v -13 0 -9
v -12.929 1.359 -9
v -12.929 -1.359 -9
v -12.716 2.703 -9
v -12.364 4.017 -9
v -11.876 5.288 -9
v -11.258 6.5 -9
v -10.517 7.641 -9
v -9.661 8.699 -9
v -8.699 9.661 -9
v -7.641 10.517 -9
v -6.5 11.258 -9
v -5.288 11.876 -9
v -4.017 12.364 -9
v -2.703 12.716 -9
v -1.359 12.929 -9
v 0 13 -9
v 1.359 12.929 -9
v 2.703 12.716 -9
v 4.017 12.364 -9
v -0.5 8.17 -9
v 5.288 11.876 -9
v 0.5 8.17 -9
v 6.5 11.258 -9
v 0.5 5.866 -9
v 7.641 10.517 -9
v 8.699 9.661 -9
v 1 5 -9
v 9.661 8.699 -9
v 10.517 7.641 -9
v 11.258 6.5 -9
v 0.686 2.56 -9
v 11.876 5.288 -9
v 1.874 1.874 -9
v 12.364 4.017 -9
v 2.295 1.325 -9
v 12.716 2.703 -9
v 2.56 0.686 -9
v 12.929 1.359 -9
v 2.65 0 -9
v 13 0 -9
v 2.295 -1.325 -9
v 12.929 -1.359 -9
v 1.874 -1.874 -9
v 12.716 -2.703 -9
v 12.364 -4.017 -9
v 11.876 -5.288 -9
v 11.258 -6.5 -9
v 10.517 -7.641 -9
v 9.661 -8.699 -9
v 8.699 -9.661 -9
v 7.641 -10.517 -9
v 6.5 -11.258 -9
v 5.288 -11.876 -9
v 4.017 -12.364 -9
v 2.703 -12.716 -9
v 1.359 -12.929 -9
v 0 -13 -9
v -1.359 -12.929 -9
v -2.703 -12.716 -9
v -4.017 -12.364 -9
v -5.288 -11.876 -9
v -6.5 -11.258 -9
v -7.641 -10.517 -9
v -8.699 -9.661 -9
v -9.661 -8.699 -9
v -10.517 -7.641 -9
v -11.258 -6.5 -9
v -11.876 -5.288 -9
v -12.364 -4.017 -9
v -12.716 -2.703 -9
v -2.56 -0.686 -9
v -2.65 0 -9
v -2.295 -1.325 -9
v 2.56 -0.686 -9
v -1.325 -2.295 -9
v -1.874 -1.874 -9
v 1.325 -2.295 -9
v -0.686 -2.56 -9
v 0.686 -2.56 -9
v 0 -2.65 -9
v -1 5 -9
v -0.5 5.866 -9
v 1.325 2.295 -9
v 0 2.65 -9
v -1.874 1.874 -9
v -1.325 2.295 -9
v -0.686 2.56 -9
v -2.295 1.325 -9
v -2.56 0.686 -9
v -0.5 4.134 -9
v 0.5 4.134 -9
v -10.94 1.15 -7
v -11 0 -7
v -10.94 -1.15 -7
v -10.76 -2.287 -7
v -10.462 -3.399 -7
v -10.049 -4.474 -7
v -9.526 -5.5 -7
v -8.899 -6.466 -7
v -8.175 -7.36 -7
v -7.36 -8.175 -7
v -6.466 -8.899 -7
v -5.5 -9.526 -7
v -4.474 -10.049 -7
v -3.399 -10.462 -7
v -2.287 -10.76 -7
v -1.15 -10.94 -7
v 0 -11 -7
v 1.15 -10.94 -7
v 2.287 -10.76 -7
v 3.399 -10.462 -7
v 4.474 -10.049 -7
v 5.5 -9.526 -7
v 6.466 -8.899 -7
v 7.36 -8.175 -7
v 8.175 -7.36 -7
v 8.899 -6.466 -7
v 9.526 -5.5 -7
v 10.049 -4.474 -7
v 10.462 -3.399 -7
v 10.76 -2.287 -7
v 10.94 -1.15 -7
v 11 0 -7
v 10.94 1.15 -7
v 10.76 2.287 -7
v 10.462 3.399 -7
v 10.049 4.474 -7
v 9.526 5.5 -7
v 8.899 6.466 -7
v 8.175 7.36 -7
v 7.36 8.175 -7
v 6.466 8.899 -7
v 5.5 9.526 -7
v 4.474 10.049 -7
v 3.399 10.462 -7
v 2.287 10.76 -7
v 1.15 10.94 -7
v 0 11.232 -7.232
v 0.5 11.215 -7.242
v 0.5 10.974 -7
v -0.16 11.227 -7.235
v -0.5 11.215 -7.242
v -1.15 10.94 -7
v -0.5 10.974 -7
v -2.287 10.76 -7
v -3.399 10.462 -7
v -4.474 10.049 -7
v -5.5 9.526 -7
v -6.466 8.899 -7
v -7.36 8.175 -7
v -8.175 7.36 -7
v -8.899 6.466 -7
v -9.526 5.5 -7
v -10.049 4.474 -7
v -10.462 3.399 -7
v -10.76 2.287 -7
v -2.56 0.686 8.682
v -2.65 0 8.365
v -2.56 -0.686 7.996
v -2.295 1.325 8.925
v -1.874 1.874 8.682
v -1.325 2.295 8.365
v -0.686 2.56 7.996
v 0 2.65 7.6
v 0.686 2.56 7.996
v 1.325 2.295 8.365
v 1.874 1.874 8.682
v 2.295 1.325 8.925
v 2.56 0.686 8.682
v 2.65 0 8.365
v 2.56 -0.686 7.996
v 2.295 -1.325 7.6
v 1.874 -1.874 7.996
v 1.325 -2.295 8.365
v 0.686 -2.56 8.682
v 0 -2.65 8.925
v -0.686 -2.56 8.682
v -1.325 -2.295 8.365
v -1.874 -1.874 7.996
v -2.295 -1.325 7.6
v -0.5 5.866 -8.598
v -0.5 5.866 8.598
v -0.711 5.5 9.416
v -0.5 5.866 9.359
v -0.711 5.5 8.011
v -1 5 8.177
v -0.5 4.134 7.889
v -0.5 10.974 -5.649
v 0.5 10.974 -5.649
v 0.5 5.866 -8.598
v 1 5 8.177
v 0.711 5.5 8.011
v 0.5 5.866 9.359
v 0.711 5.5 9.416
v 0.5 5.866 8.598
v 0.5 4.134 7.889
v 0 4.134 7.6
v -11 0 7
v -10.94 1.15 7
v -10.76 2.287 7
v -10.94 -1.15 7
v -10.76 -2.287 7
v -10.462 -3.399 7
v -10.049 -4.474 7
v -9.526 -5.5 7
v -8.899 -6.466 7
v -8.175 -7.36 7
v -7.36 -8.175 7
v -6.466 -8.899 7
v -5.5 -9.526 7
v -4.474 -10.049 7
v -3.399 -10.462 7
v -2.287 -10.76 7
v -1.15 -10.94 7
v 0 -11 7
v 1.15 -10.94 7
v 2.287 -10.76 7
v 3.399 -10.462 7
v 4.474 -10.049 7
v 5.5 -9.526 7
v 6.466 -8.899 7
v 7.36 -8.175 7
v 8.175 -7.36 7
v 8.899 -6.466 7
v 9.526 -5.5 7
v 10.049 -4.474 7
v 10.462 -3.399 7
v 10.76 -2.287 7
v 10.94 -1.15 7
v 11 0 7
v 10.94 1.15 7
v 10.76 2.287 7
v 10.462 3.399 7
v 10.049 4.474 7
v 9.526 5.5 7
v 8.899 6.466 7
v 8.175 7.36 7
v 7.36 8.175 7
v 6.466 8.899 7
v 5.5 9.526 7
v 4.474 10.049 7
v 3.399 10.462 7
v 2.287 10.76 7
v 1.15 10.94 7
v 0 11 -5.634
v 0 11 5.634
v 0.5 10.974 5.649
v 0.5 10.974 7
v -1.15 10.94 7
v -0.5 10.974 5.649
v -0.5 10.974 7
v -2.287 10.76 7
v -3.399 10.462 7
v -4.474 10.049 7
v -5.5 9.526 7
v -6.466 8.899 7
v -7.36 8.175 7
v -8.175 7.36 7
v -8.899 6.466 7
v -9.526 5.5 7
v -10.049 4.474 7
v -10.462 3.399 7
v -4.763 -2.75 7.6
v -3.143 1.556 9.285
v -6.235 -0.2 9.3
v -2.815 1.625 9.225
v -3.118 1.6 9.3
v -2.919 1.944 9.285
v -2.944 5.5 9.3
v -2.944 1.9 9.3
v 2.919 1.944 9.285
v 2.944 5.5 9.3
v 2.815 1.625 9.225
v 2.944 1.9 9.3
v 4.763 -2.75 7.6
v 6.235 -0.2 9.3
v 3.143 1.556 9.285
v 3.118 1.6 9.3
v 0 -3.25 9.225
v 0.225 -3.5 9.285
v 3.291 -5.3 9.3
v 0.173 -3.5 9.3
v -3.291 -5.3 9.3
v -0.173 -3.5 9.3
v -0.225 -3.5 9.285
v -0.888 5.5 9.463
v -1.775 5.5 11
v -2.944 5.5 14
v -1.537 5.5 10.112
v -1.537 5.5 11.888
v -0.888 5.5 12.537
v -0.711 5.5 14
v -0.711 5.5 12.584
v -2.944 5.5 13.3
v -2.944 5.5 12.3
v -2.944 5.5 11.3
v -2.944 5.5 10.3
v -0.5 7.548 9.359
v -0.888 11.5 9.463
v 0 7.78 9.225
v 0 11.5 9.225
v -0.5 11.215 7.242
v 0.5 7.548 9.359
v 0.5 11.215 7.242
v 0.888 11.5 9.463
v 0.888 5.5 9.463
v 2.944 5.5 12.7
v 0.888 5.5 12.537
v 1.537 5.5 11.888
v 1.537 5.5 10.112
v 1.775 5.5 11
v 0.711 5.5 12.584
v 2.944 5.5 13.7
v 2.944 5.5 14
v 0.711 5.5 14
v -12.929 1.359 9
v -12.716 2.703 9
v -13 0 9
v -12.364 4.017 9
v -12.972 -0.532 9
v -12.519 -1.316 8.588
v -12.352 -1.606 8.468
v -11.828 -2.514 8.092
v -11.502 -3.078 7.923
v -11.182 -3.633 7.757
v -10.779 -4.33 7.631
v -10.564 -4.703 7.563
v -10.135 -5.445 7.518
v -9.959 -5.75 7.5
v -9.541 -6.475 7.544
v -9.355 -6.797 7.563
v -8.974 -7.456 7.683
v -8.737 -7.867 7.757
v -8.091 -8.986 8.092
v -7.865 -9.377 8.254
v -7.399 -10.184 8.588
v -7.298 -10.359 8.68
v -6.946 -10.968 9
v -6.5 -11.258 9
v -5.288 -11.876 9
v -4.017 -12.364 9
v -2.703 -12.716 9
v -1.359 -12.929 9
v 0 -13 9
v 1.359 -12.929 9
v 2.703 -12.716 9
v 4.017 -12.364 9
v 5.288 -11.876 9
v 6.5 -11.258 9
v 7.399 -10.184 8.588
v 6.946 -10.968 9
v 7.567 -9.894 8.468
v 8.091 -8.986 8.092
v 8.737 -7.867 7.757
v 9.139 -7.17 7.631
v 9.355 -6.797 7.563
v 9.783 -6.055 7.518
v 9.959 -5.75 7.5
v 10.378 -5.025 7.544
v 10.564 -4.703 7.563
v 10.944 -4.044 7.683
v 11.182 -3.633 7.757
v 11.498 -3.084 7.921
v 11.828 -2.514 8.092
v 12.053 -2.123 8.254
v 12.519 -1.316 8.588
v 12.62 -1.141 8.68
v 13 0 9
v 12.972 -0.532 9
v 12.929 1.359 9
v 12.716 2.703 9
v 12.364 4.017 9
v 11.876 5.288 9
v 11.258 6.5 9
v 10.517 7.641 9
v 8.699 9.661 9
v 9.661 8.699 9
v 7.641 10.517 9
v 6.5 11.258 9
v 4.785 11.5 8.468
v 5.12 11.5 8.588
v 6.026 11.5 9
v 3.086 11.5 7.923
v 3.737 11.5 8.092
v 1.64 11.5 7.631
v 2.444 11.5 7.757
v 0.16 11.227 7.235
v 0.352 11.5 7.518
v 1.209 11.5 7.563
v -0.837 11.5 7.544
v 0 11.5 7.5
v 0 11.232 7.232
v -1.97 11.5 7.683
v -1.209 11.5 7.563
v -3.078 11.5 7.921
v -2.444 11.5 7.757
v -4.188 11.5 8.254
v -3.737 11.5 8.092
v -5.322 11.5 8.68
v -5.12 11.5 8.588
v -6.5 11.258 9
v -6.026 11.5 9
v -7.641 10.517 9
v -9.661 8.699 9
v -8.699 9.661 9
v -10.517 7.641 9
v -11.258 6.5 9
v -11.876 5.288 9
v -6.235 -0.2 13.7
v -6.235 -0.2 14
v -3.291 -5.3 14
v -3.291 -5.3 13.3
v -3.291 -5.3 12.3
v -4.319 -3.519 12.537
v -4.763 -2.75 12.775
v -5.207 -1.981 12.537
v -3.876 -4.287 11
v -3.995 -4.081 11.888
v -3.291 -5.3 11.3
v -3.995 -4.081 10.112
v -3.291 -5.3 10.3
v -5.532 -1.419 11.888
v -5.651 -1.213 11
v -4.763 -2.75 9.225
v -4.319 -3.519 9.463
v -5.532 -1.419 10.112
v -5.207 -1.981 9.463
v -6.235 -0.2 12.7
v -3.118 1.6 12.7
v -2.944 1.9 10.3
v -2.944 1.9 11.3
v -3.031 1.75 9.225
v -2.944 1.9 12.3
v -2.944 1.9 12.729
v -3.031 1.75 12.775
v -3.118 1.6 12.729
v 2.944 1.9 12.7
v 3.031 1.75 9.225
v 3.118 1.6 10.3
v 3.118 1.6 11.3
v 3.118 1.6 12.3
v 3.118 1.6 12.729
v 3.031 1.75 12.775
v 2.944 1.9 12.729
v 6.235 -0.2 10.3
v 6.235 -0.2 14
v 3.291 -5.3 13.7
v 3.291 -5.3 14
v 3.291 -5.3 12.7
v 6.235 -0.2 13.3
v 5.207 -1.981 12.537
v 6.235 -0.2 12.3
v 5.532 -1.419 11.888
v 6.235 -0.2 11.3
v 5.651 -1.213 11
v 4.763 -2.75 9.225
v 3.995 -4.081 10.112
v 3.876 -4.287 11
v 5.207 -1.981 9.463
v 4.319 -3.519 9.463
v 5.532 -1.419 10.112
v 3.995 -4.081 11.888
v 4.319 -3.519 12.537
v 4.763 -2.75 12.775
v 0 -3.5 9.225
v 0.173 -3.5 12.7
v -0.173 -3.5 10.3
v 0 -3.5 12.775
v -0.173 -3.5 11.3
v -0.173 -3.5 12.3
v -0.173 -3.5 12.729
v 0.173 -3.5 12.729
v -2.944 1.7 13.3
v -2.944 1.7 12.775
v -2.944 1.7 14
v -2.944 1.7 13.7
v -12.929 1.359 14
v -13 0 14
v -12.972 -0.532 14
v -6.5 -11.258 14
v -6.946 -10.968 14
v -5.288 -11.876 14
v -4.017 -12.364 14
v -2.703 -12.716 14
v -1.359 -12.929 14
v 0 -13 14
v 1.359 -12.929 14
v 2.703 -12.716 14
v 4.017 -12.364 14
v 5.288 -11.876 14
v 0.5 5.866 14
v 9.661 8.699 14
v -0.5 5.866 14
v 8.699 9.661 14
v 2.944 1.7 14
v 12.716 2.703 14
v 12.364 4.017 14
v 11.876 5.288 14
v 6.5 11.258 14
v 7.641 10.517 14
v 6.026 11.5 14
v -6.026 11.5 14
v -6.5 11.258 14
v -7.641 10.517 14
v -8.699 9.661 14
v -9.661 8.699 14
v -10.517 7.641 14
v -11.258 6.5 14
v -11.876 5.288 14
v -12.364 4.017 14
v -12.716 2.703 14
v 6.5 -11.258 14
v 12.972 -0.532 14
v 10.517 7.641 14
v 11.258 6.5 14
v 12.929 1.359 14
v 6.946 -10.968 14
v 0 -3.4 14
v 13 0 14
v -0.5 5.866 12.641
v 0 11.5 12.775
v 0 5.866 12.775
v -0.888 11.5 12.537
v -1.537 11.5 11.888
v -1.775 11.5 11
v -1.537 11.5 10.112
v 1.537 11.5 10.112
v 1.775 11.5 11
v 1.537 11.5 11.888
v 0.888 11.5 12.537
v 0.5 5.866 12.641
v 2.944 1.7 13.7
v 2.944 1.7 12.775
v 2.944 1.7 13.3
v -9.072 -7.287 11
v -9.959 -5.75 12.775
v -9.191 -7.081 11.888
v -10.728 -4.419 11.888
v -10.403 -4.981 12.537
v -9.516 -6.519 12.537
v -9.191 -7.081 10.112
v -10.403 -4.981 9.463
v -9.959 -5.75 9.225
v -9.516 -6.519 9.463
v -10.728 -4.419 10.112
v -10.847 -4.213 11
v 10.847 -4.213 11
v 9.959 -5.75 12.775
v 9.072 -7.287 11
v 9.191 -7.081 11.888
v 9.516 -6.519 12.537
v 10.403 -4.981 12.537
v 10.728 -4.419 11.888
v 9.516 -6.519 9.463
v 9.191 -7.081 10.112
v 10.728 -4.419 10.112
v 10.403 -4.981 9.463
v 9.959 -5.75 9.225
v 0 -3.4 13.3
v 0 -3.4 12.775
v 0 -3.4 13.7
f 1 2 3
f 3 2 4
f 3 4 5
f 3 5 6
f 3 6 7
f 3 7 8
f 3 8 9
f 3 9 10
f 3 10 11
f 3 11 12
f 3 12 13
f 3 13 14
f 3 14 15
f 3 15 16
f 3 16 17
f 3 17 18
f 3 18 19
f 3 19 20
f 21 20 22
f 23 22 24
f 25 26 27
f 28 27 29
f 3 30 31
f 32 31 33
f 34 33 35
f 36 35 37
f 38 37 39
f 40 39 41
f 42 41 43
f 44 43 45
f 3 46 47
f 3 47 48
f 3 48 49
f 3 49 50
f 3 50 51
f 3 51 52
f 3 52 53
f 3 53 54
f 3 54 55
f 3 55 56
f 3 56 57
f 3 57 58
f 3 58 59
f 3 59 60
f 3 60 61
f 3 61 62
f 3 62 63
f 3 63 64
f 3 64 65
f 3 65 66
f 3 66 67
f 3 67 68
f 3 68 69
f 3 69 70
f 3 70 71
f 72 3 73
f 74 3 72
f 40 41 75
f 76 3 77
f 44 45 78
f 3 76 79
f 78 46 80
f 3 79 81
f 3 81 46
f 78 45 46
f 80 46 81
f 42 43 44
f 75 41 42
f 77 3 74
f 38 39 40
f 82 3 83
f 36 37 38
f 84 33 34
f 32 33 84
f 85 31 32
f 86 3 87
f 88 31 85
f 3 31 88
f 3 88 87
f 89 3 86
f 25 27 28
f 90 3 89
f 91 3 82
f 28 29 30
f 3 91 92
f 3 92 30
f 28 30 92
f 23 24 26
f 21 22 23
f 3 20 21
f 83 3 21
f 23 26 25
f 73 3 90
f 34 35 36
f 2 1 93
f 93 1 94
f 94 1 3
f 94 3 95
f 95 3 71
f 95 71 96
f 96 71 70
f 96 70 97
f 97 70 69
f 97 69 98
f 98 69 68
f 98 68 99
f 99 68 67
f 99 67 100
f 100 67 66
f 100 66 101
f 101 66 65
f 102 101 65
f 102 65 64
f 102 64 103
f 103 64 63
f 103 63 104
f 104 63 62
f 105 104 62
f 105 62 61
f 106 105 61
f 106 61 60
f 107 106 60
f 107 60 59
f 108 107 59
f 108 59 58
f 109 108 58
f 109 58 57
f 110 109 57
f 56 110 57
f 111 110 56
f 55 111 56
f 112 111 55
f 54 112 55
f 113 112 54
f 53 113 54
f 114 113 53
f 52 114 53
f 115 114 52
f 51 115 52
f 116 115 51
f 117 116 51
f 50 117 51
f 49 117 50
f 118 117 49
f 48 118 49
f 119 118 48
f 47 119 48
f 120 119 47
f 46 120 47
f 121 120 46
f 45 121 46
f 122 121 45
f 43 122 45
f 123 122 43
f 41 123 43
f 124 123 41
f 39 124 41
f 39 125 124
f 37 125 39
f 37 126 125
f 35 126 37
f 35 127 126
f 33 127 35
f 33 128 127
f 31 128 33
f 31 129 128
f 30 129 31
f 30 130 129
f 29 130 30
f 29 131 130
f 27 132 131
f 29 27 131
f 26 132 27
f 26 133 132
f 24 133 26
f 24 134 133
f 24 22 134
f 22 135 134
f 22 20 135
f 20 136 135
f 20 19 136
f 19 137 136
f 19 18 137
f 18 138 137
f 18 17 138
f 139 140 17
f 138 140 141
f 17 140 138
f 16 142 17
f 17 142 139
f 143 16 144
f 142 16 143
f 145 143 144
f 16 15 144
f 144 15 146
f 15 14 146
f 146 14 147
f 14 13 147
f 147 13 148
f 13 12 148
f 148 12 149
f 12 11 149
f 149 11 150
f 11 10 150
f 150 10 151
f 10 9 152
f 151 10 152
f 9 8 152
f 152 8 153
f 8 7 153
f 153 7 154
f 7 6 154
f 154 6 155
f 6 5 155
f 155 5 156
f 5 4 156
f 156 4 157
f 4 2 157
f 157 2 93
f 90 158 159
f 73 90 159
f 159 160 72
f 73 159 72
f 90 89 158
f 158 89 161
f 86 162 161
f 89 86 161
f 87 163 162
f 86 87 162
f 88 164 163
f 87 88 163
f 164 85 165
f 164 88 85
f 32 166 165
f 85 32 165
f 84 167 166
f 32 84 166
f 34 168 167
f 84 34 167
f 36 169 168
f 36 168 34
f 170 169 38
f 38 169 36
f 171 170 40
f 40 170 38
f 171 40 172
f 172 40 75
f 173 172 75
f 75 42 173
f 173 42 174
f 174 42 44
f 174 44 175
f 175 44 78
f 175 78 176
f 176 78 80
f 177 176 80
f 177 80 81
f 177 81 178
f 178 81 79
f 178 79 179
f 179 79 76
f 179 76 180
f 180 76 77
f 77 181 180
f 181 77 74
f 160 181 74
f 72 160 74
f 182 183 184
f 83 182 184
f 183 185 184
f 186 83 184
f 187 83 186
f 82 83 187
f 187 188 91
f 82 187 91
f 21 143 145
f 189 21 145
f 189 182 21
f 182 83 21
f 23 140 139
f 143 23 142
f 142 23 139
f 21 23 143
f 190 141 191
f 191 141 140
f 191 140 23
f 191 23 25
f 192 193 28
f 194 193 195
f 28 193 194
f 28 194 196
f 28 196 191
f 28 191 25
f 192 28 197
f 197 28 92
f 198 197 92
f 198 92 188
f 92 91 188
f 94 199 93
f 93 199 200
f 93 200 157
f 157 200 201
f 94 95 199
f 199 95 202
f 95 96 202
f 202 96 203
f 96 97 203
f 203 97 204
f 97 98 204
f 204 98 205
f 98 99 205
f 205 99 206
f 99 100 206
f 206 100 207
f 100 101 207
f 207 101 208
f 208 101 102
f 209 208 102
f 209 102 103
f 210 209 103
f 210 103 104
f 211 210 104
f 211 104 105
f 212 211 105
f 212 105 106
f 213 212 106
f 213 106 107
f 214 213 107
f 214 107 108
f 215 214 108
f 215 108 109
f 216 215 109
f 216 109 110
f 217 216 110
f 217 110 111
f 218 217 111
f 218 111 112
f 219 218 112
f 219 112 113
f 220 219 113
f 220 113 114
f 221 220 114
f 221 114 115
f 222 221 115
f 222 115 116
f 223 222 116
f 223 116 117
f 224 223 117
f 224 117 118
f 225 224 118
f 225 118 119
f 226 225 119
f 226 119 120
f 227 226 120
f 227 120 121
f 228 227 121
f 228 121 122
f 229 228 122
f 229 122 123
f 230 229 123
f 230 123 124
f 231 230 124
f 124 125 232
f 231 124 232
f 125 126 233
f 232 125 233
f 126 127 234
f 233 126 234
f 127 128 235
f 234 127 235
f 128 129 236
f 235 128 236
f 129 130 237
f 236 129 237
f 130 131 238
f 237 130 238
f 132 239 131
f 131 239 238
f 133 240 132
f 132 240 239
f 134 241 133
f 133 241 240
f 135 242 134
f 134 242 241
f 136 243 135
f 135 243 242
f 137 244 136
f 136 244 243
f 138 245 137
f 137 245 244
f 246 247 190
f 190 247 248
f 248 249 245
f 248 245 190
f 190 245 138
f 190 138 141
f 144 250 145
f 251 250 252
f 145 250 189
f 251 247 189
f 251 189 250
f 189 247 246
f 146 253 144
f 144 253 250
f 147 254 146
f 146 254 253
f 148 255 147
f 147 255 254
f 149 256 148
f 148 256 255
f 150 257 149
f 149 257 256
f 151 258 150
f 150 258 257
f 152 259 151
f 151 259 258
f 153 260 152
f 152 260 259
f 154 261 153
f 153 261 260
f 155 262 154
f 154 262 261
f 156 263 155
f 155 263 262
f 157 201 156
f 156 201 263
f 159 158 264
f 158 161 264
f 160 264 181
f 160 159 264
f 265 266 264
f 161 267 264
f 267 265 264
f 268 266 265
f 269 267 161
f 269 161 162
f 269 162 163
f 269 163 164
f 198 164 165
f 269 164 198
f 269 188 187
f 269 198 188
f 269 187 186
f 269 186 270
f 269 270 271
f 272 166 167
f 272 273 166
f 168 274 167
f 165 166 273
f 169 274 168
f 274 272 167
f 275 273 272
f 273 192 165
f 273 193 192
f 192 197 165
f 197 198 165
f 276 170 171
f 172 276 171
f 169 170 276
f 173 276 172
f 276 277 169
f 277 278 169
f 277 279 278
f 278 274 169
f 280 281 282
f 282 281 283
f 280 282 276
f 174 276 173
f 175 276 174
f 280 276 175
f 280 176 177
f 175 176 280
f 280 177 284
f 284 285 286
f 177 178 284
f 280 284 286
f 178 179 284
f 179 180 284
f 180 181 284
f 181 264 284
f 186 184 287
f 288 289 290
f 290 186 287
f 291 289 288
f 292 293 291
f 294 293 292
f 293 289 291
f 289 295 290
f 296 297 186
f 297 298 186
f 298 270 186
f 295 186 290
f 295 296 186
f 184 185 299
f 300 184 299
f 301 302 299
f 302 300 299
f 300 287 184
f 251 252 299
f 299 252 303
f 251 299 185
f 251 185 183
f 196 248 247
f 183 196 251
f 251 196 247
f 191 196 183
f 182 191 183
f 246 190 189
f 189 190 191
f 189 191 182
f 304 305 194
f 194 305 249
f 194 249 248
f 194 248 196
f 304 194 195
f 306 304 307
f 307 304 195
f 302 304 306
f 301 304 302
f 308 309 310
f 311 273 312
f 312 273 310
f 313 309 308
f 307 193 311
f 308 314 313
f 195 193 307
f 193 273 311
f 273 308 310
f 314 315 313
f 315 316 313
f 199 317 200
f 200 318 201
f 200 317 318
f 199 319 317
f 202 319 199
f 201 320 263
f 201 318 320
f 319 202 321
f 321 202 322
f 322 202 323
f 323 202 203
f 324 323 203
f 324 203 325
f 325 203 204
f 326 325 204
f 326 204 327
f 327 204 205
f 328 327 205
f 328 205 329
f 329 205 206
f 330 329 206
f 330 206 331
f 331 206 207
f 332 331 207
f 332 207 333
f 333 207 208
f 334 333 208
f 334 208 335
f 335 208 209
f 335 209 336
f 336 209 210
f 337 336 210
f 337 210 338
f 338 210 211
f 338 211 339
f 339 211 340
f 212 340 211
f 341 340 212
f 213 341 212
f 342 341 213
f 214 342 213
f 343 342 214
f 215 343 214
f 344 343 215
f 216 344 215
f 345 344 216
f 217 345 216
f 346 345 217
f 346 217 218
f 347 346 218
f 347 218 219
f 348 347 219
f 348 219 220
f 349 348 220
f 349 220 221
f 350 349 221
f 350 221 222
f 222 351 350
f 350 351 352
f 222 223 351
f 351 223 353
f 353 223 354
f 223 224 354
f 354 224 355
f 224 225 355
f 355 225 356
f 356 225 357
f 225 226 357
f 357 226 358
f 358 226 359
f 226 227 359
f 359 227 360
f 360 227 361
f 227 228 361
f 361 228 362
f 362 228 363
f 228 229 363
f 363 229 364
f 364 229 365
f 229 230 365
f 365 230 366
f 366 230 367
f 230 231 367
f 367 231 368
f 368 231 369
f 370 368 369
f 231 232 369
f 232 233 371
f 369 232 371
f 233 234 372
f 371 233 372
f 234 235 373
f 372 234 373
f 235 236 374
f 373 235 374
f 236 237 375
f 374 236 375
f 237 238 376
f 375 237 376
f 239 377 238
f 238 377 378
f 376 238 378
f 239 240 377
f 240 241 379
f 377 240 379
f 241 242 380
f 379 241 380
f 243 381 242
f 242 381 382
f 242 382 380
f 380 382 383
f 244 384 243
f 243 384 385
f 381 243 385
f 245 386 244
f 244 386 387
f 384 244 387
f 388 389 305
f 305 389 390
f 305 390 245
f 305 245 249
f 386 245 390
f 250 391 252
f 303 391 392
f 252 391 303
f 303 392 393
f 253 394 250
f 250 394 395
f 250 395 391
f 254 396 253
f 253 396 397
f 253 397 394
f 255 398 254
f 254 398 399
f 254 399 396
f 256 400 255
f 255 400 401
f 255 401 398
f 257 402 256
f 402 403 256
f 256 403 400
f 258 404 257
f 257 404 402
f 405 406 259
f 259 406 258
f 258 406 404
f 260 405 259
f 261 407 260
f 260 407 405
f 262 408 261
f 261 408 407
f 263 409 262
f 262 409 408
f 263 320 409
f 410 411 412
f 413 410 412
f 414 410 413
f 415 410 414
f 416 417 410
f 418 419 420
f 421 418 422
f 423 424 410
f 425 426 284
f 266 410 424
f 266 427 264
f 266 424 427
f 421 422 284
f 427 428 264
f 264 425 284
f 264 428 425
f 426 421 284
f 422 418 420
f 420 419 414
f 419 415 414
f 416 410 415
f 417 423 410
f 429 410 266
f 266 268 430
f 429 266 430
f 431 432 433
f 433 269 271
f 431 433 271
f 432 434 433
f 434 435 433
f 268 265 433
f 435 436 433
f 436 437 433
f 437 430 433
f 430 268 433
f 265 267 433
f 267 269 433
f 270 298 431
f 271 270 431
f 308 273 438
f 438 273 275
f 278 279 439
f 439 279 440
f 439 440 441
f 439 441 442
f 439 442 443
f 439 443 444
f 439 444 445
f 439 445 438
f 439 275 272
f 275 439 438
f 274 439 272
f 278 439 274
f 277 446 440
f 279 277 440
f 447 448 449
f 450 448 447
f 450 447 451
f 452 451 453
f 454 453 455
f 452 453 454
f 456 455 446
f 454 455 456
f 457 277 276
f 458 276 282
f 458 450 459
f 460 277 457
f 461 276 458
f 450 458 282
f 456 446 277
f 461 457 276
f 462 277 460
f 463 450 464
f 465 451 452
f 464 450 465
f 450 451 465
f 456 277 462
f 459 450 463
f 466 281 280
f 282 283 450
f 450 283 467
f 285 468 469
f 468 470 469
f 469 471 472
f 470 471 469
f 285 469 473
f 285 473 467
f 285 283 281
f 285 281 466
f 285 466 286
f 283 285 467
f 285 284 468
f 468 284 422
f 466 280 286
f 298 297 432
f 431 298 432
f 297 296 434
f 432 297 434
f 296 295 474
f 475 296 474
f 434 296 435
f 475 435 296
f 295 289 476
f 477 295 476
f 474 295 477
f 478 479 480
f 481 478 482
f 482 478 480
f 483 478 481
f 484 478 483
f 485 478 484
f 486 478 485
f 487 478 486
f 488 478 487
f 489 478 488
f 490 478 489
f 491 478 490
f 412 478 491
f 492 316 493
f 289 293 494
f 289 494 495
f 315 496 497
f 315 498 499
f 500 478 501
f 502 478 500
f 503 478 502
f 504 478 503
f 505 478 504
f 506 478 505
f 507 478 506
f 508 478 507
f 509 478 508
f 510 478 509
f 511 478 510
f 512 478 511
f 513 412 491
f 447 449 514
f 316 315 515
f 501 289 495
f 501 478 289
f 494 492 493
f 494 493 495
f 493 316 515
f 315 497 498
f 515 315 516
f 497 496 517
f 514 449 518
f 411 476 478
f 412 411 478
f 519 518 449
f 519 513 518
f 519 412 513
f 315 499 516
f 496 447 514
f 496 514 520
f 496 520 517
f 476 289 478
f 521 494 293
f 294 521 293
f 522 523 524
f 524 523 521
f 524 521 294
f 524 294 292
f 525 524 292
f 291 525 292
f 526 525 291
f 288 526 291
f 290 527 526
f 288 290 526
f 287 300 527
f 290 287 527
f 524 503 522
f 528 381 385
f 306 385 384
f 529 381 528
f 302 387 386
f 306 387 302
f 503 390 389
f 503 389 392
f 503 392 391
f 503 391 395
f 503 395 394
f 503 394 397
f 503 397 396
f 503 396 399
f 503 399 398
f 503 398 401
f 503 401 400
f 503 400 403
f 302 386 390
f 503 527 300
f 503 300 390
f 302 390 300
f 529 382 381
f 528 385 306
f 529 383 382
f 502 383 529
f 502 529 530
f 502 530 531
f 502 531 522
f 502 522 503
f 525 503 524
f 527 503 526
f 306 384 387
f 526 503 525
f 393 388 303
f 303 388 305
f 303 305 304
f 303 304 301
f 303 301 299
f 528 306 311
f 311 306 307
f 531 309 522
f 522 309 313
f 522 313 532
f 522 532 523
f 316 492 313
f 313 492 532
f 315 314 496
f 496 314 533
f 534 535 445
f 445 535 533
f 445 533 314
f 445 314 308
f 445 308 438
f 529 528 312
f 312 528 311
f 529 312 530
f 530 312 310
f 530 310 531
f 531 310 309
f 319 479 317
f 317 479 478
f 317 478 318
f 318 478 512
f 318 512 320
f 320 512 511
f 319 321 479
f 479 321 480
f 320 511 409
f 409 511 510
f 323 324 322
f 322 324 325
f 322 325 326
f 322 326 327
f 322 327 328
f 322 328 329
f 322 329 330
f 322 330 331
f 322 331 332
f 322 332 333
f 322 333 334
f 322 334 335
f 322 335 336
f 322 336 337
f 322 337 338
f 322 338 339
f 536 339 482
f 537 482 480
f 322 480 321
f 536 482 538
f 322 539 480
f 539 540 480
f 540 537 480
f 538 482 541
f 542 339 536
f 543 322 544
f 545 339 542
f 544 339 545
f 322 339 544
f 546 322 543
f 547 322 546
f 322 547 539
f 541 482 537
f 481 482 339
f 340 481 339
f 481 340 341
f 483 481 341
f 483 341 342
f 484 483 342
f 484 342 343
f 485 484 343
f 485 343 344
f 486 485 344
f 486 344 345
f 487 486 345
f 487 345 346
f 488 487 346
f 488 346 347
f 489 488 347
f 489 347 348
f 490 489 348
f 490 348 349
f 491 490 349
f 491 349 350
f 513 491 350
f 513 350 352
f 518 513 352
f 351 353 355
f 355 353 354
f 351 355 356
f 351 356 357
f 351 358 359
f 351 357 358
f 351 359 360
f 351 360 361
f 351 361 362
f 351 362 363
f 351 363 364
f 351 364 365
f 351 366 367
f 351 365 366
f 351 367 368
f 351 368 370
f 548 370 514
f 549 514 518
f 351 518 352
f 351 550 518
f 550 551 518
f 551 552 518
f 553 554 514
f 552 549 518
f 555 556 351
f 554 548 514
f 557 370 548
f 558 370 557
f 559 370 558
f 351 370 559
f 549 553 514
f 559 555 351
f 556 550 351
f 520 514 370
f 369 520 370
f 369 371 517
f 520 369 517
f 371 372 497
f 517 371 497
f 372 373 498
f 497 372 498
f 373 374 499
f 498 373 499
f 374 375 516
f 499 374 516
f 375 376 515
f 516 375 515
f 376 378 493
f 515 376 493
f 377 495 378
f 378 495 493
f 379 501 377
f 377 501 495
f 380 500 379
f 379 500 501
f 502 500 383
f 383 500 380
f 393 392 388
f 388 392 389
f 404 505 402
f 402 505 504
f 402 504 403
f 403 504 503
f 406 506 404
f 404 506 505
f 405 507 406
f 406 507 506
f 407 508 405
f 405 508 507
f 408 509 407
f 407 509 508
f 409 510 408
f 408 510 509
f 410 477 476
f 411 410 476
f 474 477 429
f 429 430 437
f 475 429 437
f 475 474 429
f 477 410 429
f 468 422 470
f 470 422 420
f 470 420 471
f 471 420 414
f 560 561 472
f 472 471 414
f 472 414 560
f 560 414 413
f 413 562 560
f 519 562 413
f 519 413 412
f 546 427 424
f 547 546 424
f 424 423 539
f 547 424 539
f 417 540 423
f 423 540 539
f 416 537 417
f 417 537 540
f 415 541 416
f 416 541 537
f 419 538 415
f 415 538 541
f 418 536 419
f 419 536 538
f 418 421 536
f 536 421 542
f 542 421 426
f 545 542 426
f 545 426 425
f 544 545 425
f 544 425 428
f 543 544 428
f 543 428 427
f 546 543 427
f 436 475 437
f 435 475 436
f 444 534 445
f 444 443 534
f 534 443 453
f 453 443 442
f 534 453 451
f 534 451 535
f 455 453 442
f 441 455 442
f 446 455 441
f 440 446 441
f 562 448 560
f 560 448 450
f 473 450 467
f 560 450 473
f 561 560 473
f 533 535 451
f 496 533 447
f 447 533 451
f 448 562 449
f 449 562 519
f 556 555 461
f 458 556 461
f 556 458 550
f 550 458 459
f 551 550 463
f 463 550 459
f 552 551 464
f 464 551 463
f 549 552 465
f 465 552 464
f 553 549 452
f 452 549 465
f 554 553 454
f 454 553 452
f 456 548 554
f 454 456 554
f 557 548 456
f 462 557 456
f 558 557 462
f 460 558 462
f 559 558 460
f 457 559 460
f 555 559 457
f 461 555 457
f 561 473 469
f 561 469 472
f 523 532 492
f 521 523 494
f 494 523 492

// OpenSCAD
// file: configuration.scad
motor_end_height=44;
idler_end_height=28;
carriage_height=24;
platform_thickness=8;
bed_thickness=12;
pcb_thickness=2;
rod_length=120;
smooth_rod_length=300;
tower_radius = 120;
platform_hinge_offset=33;
carriage_hinge_offset=22;



//from kossel legacy
// Increase this if your slicer or printer make holes too tight.
extra_radius = 0.15;

// OD = outside diameter, corner to corner.
m3_nut_od = 6.1;
m3_nut_radius = m3_nut_od/2 + 0.2 + extra_radius;

// Major diameter of metric 3mm thread.
m3_major = 2.85;
m3_radius = m3_major/2 + extra_radius;
m3_wide_radius = m3_major/2 + 0.2 + extra_radius;

// NEMA17 stepper motors.
motor_shaft_diameter = 5;
motor_shaft_radius = motor_shaft_diameter/2 + extra_radius;

// Frame brackets.
thickness = 3.6;
// main file
include <configuration.scad>;

radius = 11;
width = 16;
top = 5;
smoothness = 60;

//for the center part

end_thick = 0;
middle_thick = 2;




module spool() {
	difference() {
		union() {
     		cylinder(r=radius, h=width, center=true, $fn=smoothness);
			//seperator();
			
			
			translate([0, 0, width/2]) cylinder(r1=radius, r2=radius+2, h=2, center=true, $fn=smoothness);
			translate([0, 0, -width/2]) cylinder(r2=radius, r1=radius+2, h=2, center=true, $fn=smoothness);
			translate([0, 0, width/2+top/2+1]) cylinder(r=radius+2, h=top, center=true, $fn=smoothness);
		}

    // Motor shaft.
		cylinder(r=motor_shaft_radius, h=50, center=true, $fn=24);

    // Filament tunnels.
		translate([0, radius, width/2-1.5]) rotate([-30, 0, 0])
			#cube([1, 2*radius, 1.5], center=true);
		translate([0, radius, -width/2+1.5]) rotate([30, 0, 0])
			#cube([1, 2*radius, 1.5], center=true);
		translate([0, 5, 0])
			#cylinder(r=1, h=40, center=true, $fn=6);

    // M3 screws and nuts on three sides.
		for (a = [0:120:359]) {
			rotate([0, 0, a]) translate([0, 4.5, width/2+3]) rotate([90, 0, 0]) {
				cylinder(r=m3_wide_radius, h=radius+5, center=true, $fn=12);
				translate([0, 0, 1-radius]) cylinder(r=7, h=6, center=true);
				for (z = [0:10]) {
					translate([0, z, 1.5]) rotate([0, 0, 30])
						cylinder(r=m3_nut_radius, h=5, center=true, $fn=6);
				}
			}
		}
	}
}

module seperator(){
	union(){
		translate([0,0,-5])cylinder(r1=radius+end_thick,r2=radius, h=5, center=true);
		translate([0,0,5])cylinder(r2=radius+end_thick,r1=radius, h=5, center=true);
		
		translate([0,0,-3.5/2])cylinder(r2=radius+middle_thick,r1=radius, h=3.5, center=true);
		translate([0,0,3.5/2])cylinder(r1=radius+middle_thick,r2=radius, h=3.5, center=true);

	
	}

}



translate([0, 0, 0]) spool();
